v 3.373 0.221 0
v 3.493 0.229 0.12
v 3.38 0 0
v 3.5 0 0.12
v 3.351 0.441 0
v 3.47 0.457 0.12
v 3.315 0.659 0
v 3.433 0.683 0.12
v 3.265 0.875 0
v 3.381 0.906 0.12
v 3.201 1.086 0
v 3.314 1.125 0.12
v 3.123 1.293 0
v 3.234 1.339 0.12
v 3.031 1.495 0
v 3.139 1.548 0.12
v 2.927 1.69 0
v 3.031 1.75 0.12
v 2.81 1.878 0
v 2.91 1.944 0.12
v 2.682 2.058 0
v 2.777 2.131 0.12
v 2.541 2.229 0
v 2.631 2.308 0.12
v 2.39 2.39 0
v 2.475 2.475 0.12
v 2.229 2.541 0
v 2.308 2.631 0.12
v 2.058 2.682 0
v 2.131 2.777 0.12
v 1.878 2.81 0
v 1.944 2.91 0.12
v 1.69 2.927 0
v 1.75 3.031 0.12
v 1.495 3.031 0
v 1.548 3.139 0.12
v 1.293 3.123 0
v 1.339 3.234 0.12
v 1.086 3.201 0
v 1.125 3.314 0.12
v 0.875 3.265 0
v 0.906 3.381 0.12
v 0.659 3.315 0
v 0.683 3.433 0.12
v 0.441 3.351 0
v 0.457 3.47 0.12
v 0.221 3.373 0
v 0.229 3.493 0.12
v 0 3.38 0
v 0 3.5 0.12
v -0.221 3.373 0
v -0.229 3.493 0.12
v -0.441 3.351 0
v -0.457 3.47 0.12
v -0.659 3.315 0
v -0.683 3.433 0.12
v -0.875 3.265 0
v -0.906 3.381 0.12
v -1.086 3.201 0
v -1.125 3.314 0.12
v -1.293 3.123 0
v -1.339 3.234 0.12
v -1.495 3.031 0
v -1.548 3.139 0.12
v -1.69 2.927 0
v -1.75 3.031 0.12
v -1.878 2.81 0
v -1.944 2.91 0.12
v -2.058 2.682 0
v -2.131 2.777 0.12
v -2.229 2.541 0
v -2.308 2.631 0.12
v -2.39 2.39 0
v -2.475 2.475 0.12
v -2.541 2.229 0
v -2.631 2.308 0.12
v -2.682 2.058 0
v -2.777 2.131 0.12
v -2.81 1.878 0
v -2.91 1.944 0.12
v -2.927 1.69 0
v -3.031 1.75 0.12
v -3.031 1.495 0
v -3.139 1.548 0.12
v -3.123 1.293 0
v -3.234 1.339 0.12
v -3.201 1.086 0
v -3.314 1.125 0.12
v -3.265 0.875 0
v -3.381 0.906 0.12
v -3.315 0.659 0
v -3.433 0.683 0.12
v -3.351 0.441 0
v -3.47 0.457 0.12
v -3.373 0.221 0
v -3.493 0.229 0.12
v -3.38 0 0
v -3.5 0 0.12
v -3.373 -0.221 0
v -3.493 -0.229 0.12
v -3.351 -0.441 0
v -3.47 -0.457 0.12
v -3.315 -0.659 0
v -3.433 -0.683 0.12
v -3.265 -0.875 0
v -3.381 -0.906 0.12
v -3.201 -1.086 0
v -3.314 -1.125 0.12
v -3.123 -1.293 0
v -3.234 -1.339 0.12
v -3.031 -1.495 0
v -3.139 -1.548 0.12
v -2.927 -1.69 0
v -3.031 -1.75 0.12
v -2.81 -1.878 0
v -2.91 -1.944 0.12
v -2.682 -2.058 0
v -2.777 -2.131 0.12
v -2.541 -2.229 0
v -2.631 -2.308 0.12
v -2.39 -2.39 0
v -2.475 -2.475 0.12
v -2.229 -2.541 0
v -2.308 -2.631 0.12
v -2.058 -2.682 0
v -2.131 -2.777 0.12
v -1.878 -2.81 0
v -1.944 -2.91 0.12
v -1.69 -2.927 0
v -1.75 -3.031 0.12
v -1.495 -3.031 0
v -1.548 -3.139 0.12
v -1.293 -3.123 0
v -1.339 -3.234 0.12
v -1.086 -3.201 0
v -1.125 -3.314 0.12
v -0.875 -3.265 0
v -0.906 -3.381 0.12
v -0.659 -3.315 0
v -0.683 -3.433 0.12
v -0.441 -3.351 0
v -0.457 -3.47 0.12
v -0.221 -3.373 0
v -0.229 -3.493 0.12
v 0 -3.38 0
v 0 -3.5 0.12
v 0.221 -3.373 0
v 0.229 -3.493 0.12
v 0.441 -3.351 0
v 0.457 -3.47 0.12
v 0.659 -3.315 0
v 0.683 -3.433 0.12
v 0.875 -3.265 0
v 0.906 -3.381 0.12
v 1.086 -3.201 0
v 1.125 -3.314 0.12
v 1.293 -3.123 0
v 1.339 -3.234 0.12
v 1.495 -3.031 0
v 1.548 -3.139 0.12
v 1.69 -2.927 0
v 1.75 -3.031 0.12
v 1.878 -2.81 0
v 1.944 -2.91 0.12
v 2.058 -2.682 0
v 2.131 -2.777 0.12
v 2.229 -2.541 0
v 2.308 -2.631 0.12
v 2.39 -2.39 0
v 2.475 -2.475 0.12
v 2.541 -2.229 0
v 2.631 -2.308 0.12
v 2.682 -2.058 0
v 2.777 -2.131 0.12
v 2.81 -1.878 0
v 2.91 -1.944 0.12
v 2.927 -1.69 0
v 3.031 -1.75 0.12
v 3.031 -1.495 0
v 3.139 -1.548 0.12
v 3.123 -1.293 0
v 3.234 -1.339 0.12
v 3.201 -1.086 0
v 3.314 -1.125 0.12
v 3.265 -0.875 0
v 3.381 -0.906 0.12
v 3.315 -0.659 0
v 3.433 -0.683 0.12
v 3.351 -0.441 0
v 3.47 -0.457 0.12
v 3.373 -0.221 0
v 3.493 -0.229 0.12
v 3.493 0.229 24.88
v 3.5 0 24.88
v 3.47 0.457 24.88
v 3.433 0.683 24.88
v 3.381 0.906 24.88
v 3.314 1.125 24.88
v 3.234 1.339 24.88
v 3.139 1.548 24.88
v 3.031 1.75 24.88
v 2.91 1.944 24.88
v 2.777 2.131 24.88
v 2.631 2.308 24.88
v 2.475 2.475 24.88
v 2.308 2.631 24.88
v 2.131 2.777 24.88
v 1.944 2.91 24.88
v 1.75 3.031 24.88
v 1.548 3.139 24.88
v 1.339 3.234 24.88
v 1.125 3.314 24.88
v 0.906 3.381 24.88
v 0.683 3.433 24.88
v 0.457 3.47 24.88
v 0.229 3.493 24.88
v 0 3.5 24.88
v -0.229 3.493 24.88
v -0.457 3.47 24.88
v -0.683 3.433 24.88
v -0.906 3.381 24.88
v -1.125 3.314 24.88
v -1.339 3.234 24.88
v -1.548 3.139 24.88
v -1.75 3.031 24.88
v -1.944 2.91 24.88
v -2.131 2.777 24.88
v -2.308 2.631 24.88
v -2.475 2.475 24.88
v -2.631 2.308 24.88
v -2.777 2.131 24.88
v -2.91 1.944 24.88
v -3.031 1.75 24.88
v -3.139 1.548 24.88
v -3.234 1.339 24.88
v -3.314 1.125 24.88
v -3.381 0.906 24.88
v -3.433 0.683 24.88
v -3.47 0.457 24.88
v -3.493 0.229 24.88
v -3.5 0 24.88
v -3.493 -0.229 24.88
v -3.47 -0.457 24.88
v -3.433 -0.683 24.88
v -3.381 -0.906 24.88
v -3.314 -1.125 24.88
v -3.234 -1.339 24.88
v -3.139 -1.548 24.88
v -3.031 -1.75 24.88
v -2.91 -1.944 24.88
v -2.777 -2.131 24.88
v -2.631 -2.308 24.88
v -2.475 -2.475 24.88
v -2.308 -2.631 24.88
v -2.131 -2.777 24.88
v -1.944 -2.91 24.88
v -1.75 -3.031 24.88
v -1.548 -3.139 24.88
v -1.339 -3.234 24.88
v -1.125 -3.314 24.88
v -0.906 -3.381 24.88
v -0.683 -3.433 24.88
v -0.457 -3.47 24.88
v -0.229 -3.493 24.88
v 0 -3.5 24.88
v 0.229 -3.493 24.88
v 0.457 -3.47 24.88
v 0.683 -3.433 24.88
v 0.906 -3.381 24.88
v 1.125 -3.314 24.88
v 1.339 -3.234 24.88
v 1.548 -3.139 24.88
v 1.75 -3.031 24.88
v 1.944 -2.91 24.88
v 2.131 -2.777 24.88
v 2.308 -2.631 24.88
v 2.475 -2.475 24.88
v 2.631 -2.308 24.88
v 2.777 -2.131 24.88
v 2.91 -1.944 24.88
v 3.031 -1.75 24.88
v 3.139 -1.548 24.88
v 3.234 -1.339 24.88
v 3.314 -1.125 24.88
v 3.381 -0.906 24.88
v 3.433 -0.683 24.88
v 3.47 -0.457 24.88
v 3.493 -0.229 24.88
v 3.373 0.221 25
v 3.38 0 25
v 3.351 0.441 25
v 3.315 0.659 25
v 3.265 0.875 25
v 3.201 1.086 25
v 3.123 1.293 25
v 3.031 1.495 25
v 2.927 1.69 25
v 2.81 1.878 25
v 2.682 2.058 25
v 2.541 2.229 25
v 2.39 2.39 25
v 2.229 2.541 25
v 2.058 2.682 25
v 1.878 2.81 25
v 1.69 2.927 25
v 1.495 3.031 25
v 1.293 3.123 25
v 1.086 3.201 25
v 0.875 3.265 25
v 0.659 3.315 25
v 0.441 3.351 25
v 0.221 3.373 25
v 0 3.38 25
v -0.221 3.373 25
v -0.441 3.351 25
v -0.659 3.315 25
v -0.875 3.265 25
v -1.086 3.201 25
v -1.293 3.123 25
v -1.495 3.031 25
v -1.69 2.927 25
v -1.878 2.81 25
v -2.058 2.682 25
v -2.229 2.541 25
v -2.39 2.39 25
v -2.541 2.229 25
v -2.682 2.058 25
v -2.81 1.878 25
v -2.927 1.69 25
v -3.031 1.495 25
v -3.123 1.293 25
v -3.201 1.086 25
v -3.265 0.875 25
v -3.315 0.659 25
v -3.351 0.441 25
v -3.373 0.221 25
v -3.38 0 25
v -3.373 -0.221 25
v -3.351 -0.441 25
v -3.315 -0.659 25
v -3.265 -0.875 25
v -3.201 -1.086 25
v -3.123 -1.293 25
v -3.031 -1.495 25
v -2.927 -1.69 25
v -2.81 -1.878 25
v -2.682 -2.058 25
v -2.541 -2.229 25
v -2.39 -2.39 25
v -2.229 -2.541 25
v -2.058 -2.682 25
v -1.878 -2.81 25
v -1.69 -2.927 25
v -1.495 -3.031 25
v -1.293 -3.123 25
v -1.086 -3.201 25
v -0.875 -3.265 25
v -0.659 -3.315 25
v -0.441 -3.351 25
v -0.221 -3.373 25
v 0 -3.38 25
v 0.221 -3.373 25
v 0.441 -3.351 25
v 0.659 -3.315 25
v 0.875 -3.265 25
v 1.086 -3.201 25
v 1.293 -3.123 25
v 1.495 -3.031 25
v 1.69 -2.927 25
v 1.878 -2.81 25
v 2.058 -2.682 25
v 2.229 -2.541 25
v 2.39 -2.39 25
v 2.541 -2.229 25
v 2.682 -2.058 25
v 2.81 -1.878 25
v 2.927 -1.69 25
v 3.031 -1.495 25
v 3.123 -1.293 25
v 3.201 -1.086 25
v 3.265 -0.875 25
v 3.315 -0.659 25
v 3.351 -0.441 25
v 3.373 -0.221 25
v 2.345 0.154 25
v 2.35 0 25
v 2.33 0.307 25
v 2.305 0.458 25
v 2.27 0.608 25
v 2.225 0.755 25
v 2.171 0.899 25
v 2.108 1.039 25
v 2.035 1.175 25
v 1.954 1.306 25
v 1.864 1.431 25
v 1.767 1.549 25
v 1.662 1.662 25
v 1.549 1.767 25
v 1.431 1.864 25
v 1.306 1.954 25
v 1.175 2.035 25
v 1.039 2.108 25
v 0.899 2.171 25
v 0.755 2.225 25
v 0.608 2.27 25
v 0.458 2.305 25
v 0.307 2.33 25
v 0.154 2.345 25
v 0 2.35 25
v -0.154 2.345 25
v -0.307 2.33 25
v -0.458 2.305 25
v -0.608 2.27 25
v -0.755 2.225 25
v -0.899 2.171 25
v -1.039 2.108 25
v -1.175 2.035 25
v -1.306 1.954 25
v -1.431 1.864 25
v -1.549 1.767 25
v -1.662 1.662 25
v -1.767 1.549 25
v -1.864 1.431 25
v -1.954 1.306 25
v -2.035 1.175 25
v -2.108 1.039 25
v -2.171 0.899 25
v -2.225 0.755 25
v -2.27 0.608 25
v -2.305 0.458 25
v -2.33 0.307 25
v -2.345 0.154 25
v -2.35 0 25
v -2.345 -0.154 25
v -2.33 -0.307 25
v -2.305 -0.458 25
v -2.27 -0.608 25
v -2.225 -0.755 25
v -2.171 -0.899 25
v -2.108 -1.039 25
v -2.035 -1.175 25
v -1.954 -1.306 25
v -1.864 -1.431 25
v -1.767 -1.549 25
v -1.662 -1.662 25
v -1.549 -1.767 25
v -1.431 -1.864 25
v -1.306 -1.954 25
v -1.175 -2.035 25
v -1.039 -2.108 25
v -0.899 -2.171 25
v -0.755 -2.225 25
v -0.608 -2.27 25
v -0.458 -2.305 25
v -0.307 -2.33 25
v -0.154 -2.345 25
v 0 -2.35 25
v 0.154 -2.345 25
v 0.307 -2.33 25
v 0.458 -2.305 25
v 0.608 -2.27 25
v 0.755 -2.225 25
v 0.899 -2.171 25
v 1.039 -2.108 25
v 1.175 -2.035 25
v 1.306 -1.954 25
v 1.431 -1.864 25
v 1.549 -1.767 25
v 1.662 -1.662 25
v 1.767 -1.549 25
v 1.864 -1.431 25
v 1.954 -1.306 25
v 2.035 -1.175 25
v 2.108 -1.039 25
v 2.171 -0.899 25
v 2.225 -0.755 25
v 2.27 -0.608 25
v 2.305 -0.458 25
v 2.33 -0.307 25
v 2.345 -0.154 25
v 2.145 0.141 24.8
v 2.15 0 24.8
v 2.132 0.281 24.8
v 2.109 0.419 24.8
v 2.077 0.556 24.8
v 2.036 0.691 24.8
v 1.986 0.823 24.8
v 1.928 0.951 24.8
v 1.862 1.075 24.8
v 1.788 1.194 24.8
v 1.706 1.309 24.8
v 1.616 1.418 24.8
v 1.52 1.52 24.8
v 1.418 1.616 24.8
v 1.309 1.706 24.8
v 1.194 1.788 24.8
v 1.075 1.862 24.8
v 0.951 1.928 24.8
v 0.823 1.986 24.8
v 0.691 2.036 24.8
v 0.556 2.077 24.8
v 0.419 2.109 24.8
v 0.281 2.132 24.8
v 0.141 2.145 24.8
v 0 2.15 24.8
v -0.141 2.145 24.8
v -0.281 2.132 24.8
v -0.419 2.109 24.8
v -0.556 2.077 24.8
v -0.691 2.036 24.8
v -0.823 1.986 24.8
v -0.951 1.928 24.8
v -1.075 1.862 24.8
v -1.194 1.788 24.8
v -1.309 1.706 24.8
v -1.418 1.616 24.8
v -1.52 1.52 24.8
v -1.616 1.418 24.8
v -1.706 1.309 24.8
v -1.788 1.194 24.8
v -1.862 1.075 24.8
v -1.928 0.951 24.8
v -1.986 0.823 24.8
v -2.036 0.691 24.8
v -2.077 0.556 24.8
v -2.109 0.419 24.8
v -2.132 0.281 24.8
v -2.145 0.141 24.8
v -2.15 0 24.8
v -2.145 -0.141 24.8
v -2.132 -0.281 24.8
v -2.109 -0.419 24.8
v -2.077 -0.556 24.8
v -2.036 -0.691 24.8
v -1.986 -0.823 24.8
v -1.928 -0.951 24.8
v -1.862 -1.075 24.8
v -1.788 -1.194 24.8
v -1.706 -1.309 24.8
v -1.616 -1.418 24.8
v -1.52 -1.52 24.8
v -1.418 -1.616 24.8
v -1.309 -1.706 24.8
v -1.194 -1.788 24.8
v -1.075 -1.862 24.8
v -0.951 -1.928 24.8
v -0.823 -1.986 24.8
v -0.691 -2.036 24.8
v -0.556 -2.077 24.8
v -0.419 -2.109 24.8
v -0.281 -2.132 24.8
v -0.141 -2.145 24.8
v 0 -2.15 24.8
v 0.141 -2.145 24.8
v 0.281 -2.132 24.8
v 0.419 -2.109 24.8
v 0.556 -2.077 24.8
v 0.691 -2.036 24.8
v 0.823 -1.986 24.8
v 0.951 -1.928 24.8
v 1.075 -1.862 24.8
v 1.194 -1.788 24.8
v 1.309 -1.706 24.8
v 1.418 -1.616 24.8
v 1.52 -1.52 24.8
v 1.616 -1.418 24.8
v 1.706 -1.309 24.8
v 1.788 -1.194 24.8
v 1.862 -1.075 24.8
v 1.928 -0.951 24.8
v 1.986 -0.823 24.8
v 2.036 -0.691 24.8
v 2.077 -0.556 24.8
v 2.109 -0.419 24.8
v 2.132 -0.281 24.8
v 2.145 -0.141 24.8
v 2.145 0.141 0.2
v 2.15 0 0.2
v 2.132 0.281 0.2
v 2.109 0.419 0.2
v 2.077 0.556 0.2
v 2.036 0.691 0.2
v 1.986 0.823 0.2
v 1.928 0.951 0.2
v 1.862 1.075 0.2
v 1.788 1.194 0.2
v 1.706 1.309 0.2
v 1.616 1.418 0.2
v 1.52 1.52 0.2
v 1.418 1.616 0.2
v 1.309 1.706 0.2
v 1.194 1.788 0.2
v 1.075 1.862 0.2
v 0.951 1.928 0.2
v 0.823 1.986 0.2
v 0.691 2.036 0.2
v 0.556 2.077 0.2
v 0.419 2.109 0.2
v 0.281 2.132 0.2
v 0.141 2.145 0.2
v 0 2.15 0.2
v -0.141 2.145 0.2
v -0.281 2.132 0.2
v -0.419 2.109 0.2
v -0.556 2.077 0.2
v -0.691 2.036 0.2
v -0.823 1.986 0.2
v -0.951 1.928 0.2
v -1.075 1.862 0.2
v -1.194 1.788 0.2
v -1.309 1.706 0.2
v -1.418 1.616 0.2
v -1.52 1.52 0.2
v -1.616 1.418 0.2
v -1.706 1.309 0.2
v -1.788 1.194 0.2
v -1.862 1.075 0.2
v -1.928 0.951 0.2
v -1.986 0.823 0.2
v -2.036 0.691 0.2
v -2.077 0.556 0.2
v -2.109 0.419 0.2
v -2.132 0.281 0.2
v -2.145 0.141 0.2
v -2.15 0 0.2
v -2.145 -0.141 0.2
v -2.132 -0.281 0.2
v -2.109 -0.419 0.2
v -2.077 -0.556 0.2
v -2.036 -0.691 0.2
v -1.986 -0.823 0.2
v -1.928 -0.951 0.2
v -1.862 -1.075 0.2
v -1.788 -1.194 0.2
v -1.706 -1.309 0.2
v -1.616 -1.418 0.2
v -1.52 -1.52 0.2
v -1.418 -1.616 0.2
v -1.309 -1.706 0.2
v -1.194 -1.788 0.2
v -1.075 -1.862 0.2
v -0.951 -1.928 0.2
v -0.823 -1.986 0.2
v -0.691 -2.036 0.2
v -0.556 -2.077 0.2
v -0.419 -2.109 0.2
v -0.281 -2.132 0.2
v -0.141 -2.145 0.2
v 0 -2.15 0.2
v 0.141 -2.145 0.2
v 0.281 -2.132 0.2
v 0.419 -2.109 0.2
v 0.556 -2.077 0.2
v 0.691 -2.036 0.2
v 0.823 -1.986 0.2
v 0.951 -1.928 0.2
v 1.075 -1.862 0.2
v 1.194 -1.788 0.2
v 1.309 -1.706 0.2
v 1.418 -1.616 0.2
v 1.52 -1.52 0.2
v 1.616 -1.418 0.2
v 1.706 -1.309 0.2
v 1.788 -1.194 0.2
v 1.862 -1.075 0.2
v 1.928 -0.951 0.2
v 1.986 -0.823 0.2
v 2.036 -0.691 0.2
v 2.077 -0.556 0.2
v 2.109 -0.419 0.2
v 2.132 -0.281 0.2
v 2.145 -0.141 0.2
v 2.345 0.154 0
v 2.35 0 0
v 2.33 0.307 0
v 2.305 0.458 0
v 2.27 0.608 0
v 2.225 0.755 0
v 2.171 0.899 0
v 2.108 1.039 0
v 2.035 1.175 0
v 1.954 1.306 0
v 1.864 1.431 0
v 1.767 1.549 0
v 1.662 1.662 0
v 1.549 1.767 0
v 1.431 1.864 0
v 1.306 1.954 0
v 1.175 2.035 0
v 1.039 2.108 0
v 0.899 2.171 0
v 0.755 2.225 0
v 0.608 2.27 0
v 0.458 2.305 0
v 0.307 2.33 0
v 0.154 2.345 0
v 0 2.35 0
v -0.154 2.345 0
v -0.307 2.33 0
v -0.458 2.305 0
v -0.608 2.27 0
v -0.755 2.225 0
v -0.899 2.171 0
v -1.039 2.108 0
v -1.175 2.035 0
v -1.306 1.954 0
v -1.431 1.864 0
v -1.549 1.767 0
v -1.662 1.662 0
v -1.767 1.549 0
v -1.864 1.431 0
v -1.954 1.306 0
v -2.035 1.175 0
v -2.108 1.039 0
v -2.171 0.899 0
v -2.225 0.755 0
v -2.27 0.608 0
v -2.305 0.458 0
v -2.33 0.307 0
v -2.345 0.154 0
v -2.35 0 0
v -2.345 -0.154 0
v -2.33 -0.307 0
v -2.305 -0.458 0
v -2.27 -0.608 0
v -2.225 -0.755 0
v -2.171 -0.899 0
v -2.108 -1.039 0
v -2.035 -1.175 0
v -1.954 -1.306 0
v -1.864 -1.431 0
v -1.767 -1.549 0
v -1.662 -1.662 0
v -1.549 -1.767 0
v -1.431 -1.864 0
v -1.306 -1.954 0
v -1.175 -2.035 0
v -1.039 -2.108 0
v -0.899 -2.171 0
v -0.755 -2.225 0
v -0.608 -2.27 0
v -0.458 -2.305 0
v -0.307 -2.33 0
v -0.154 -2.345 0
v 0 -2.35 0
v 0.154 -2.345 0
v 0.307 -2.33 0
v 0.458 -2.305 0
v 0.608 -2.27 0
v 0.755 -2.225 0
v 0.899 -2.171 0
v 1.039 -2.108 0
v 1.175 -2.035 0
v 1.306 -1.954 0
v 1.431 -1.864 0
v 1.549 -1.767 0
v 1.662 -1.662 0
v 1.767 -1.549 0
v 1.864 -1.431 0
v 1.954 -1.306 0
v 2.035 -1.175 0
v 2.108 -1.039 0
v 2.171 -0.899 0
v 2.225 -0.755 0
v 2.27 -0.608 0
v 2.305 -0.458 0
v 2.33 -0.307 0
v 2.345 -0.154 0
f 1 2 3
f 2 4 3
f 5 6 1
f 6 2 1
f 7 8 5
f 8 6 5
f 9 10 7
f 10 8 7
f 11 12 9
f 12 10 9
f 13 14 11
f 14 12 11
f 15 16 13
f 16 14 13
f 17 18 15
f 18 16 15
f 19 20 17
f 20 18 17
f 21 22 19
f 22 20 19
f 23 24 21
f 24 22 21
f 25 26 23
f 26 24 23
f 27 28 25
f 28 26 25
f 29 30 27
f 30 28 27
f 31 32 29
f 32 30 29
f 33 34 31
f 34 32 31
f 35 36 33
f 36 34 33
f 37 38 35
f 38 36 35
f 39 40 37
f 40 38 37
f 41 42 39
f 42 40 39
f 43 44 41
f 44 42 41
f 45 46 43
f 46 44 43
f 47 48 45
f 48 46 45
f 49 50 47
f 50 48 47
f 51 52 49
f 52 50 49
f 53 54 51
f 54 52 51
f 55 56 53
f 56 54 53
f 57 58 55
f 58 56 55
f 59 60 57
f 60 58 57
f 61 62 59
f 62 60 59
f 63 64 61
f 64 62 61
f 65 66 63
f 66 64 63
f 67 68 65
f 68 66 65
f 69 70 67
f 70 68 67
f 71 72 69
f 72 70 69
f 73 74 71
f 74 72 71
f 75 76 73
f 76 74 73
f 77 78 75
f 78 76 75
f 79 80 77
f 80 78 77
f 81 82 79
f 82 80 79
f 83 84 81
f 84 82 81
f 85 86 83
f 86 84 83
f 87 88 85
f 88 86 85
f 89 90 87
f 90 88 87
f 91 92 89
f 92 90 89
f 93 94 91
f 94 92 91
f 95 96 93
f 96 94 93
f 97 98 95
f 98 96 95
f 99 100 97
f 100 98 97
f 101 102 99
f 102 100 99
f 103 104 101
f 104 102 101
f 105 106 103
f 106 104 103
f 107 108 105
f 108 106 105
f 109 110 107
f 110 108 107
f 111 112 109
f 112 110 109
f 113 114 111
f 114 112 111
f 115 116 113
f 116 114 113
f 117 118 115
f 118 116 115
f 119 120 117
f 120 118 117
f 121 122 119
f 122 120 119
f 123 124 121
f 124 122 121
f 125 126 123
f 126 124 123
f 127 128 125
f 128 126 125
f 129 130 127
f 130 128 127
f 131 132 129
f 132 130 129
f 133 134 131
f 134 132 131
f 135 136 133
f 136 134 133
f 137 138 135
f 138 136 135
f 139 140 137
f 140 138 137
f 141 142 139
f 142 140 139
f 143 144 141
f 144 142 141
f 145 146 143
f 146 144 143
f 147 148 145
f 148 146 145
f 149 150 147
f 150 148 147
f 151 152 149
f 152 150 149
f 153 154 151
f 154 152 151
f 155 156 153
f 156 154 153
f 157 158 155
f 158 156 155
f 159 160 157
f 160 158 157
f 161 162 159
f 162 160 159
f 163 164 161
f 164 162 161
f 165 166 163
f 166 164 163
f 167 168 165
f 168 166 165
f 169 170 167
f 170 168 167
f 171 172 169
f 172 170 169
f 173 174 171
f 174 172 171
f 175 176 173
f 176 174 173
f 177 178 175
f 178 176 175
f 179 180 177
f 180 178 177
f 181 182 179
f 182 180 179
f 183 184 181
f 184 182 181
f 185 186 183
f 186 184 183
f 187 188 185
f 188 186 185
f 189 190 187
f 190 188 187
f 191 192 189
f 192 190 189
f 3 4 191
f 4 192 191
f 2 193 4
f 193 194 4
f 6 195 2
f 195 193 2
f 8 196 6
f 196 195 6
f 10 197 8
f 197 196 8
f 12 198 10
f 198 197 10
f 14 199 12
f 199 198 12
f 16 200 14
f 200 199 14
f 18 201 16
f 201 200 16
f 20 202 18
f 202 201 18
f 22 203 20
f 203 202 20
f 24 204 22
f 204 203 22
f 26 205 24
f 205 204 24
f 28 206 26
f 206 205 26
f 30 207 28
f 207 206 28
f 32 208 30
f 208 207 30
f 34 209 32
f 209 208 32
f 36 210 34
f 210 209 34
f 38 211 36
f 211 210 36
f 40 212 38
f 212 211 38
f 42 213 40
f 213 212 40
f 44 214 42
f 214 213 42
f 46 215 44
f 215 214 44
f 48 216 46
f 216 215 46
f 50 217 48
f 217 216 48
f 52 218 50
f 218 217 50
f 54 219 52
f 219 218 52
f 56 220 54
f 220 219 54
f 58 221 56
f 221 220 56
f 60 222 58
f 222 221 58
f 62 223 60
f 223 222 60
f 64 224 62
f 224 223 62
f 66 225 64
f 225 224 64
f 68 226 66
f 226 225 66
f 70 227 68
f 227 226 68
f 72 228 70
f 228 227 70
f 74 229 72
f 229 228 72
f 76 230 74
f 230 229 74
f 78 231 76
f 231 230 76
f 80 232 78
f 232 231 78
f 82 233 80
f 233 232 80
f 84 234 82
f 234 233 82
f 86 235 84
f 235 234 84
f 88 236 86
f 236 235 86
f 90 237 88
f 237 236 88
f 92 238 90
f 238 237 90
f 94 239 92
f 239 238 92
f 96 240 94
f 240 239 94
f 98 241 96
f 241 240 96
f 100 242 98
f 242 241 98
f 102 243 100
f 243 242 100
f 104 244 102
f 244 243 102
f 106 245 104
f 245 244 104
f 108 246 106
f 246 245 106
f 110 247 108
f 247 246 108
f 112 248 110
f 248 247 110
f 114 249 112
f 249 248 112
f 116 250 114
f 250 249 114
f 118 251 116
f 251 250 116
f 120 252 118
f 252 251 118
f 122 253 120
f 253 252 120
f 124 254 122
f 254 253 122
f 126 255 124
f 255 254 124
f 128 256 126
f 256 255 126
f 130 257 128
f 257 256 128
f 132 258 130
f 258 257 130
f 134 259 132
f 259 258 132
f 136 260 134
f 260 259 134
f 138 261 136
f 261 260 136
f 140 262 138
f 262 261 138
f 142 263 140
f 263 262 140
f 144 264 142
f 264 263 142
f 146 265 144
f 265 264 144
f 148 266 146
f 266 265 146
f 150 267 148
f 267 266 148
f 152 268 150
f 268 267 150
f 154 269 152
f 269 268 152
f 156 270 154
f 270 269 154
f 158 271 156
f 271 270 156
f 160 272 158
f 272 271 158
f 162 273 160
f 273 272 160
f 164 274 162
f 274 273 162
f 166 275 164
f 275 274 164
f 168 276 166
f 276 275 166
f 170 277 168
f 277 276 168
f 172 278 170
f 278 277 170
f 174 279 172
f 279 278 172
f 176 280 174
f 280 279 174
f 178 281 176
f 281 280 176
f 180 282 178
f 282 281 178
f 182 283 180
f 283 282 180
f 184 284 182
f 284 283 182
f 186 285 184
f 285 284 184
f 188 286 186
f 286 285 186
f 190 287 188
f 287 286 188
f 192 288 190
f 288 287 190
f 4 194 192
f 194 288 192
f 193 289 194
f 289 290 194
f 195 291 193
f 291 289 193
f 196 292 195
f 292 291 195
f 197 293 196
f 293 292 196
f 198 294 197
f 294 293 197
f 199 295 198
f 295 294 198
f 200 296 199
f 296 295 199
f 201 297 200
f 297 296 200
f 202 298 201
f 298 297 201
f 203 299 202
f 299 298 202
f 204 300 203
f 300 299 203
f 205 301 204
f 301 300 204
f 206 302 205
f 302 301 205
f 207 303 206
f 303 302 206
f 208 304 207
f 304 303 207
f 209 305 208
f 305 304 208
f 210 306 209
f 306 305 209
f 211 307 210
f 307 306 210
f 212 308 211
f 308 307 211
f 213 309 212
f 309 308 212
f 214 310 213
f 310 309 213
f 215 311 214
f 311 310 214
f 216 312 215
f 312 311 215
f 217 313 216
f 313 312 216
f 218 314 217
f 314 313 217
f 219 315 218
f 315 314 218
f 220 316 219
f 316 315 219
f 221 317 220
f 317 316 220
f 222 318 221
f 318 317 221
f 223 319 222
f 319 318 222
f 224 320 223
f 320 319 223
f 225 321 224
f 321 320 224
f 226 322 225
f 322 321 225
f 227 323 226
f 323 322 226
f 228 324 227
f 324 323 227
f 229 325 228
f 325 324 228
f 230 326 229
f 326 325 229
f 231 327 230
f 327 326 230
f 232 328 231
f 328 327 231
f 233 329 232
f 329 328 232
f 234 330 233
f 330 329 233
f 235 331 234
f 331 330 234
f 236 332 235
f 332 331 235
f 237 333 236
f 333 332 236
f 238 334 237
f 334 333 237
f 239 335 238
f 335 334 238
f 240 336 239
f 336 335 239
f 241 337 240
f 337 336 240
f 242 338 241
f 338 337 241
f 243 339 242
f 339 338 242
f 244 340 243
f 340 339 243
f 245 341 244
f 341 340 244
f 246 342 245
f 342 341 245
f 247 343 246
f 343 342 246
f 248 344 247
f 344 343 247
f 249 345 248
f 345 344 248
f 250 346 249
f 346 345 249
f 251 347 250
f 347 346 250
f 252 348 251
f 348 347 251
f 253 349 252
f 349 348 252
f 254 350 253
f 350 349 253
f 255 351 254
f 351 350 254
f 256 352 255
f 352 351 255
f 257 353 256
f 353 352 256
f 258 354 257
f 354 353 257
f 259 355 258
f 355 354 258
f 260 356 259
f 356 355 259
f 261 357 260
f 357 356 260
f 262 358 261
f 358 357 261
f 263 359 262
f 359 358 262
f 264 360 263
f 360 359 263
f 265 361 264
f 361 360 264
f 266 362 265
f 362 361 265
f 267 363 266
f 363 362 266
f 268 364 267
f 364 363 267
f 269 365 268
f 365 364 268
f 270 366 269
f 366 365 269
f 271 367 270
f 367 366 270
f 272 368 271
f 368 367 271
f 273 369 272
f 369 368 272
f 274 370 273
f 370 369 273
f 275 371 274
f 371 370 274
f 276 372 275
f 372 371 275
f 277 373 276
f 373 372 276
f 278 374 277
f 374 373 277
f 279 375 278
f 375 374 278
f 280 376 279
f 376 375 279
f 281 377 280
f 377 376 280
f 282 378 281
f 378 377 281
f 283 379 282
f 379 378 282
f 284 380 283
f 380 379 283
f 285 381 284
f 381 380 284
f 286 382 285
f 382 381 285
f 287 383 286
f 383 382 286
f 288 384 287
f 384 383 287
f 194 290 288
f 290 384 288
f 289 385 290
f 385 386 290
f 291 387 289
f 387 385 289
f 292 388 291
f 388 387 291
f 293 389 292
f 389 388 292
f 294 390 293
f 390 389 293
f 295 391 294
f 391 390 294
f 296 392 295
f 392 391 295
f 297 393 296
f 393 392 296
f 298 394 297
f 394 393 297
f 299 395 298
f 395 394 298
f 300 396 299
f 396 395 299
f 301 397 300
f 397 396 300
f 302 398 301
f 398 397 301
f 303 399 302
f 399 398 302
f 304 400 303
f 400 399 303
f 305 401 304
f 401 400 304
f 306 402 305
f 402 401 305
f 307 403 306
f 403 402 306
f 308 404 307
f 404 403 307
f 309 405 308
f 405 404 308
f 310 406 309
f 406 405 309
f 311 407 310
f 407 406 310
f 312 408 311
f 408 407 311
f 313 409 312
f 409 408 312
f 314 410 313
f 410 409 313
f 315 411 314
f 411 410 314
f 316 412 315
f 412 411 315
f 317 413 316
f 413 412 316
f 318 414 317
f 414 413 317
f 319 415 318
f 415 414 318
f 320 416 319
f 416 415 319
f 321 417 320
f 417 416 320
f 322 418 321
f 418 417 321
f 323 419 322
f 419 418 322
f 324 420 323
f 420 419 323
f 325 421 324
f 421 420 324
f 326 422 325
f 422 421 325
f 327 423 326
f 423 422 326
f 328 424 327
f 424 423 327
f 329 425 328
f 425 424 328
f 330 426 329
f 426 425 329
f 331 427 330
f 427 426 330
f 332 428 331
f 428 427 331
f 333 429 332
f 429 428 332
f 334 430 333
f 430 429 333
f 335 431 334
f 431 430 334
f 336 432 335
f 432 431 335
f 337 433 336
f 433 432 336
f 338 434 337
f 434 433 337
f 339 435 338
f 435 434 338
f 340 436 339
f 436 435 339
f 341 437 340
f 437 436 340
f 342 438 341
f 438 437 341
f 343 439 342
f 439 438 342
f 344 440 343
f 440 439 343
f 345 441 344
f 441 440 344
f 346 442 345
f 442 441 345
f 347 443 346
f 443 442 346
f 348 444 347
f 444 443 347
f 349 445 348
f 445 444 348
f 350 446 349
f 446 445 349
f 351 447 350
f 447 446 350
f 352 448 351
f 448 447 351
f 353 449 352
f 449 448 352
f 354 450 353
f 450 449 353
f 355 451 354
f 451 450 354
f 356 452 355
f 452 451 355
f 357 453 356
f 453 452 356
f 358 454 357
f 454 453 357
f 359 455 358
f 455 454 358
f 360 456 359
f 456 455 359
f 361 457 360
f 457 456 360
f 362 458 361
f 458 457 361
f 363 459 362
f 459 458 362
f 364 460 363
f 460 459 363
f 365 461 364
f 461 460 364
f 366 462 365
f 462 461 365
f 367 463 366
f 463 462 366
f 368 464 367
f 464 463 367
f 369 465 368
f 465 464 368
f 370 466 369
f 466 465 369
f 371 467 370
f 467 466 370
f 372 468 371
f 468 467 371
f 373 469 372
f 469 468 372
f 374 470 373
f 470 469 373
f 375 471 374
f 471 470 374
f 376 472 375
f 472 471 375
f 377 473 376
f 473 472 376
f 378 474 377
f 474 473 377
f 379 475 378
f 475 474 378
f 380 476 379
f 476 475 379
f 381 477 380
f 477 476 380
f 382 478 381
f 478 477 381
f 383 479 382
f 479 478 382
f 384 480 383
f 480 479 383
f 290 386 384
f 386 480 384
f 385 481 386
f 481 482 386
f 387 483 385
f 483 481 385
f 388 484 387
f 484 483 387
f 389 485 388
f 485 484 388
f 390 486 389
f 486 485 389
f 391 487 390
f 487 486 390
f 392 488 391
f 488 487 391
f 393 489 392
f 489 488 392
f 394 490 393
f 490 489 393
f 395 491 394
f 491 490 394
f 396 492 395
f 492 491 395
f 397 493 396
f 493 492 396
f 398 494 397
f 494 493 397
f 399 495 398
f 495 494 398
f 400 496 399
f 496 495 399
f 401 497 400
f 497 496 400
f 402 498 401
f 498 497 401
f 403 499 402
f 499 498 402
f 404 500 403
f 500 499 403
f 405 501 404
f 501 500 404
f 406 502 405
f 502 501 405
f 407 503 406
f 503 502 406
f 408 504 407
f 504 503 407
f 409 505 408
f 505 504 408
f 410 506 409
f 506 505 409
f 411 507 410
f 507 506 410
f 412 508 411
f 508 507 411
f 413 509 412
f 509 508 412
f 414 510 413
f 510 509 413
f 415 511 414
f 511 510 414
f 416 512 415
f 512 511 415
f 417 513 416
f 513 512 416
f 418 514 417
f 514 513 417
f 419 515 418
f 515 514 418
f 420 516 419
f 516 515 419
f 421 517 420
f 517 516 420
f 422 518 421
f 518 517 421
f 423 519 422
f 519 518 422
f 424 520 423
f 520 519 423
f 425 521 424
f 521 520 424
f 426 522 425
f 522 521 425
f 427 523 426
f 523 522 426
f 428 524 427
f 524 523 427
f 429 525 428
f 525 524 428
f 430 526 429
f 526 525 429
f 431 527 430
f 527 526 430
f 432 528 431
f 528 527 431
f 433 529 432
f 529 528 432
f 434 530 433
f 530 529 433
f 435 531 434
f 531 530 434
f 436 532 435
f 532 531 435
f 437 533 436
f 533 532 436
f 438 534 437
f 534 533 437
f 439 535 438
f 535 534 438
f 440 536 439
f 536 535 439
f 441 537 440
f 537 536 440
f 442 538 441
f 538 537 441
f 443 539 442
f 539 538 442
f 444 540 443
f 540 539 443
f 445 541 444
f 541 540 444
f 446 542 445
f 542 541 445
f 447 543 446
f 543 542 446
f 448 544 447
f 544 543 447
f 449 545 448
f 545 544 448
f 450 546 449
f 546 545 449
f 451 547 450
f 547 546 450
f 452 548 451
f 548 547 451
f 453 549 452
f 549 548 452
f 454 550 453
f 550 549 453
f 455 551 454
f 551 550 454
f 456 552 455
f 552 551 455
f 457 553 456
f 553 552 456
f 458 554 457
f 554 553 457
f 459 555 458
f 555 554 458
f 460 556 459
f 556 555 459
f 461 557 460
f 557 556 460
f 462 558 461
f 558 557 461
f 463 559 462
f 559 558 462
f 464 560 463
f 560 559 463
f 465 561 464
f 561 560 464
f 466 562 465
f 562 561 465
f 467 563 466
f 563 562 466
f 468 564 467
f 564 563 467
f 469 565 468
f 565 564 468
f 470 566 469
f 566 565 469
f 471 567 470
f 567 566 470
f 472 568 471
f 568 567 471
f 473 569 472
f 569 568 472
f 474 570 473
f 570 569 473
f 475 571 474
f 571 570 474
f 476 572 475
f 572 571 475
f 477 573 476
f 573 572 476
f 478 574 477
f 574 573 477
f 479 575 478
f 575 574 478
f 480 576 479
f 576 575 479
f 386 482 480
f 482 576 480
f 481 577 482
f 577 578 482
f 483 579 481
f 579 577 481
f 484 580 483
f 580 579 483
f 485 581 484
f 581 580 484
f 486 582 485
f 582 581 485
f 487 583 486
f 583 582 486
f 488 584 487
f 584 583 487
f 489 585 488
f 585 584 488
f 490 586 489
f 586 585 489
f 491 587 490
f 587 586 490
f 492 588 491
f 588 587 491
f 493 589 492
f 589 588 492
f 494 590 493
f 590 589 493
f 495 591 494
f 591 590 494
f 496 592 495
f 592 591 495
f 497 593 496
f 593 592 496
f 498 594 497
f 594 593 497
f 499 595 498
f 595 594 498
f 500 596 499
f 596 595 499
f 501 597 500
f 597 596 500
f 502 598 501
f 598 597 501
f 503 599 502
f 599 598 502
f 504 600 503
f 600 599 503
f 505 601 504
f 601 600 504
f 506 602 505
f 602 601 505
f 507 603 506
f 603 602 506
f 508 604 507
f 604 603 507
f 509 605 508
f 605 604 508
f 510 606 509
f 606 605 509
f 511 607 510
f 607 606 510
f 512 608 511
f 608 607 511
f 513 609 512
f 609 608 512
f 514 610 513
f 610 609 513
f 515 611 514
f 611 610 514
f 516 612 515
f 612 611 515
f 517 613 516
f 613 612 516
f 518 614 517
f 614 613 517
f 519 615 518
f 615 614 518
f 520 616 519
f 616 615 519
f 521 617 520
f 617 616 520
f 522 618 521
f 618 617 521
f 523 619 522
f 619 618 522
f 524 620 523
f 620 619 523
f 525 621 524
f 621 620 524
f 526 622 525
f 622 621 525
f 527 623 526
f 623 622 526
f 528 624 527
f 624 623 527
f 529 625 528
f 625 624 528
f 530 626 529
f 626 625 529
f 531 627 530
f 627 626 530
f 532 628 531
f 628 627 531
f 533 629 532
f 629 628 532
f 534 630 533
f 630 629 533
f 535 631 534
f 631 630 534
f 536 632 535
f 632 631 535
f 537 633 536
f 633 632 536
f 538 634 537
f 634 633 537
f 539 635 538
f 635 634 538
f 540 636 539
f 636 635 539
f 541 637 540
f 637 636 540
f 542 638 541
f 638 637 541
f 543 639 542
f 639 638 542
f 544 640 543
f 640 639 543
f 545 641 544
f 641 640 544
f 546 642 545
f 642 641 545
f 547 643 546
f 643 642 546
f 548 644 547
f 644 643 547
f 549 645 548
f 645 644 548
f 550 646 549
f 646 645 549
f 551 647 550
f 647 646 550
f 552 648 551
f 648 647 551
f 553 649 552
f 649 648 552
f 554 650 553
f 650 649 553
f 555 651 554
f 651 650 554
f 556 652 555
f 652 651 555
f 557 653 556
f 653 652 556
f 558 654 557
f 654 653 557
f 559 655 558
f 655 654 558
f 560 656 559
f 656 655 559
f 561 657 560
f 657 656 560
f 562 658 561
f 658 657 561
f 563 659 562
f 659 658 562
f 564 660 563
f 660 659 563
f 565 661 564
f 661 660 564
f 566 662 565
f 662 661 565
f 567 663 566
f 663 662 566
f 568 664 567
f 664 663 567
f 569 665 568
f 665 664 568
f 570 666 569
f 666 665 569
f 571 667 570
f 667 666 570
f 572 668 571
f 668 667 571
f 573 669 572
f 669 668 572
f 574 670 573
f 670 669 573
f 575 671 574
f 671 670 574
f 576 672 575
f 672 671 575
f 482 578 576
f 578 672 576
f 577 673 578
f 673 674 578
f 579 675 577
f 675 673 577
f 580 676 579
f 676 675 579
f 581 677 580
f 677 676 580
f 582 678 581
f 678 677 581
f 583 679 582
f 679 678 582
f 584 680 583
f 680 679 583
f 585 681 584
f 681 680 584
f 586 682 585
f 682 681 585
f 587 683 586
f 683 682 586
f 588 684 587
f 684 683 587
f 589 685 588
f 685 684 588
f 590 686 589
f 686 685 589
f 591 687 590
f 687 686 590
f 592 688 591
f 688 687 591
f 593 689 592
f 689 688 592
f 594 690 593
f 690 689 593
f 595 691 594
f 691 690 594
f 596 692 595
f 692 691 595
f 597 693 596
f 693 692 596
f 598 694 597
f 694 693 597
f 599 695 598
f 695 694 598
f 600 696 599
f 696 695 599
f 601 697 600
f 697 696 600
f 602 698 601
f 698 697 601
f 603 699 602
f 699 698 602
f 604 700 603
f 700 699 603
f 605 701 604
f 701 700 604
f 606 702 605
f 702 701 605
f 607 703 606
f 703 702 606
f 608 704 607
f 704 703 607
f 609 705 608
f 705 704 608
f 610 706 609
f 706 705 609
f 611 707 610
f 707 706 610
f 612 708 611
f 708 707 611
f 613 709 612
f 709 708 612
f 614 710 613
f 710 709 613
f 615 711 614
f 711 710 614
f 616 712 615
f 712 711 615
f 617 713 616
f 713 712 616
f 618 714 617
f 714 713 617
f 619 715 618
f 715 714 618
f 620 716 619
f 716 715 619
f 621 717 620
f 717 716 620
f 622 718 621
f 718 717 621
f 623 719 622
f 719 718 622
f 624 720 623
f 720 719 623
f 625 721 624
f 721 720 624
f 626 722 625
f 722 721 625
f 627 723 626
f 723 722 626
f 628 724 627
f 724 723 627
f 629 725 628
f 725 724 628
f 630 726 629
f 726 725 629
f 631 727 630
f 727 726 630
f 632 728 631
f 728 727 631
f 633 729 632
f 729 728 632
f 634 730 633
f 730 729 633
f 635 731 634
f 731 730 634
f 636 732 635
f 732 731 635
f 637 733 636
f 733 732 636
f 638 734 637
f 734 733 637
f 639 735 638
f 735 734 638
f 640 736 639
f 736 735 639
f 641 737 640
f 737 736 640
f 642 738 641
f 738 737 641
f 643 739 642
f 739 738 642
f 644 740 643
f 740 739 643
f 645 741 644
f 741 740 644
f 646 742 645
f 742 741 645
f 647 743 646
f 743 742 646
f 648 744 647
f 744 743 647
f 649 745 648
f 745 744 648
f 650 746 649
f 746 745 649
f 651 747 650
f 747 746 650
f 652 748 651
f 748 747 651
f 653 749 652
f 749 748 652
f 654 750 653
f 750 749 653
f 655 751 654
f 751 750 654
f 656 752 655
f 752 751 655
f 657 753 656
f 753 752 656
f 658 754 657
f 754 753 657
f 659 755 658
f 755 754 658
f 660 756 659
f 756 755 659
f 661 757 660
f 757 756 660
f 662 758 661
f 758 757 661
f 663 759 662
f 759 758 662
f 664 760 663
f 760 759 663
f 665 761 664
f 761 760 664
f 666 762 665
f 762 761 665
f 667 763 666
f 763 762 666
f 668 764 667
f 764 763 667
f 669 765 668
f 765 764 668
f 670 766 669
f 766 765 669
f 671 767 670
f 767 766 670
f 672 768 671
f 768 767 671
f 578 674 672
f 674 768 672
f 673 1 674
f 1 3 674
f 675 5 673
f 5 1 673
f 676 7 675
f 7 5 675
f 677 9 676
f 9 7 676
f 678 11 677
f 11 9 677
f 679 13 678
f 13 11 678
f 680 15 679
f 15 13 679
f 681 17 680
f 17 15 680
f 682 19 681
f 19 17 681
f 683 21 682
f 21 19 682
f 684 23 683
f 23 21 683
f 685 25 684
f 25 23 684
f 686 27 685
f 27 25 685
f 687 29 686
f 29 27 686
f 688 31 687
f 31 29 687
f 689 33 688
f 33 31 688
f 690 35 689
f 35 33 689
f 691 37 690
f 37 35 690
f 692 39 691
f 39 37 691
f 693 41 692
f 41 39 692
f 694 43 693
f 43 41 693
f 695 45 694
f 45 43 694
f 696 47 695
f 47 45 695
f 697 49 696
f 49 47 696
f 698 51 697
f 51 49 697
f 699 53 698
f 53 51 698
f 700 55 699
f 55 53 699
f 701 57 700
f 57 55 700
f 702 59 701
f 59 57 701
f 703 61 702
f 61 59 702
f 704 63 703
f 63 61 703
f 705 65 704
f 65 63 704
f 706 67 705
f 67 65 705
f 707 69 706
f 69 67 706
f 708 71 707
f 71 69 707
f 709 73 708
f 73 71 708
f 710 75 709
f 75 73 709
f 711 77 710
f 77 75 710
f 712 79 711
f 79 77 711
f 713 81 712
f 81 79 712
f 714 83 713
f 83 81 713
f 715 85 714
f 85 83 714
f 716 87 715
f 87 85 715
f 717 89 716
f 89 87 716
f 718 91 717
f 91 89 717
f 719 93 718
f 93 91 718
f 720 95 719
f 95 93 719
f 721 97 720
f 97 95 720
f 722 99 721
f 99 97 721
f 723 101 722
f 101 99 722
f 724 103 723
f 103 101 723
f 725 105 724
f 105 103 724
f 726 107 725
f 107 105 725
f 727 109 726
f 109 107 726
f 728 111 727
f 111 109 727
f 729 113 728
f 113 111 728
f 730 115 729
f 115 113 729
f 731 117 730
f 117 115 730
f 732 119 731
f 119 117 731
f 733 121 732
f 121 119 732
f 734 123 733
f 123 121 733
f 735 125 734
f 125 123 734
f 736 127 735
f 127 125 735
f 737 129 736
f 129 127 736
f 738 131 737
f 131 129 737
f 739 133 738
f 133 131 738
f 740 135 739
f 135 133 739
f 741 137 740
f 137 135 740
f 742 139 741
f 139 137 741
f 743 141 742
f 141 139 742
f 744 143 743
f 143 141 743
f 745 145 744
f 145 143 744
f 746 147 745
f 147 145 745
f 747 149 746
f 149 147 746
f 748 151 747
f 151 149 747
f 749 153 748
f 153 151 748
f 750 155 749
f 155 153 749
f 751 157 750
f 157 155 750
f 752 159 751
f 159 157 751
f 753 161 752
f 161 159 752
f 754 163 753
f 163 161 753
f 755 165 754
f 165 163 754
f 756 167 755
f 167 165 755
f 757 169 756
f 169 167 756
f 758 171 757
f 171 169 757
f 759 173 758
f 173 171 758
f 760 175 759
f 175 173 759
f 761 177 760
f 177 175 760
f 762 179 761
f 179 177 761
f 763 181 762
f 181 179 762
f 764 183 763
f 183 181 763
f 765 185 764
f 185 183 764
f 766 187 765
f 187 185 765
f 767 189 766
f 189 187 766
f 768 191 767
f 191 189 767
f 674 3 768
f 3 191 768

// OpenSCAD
// OOMP generic catalogue model; units: mm.
// Stud length is additional to body depth. Tapping depths are model assumptions.
variant = "full"; // [full, display]
family = "spacer";
connection_type = "plain";
depth_mm = 25;
stud_length_mm = 0;
tapped_depth_mm = 0;
bore_mm = 4.3;
outer_diameter_mm = 7;
across_flats_mm = 6;
thread_nominal_diameter_mm = 3;
thread_pitch_mm = 0.5;
edge_chamfer_mm = 0.12;
mouth_chamfer_mm = 0.2;
angular_segments = 96;
samples_per_pitch = 16;

// Boundary travels up the outside, then down any tapped/plain bore.
// Equal-height rings at shoulders form the annular shoulder faces.
n = angular_segments;
threaded = family == "standoff";
has_stud = connection_type == "stud_to_tapped" || connection_type == "stud_to_stud";
two_studs = connection_type == "stud_to_stud";
through = !threaded || connection_type == "tapped_to_tapped";
pitch = thread_pitch_mm;
diameter = threaded ? thread_nominal_diameter_mm : bore_mm;
minor = diameter - 5*sqrt(3)*pitch/8;
transition = mouth_chamfer_mm + (threaded ? 5*sqrt(3)*pitch/16 : 0);
tip_chamfer = mouth_chamfer_mm + 17*sqrt(3)*pitch/48;
function sorted(v) = len(v)<=1 ? v : let(p=v[0])
    concat(sorted([for(x=v) if(x<p-1e-8) x]), [p], sorted([for(x=v) if(x>p+1e-8) x]));
function reverse(v) = [for(i=[len(v)-1:-1:0]) v[i]];
function theta(i) = i*360/n;
function fract(x) = x-floor(x);
function phase_distance(i,z) = abs(fract(z/pitch-theta(i)/360+0.5)-0.5);
function thread_r(i,z) = minor/2 + min(5*sqrt(3)*pitch/16,
    max(0,(phase_distance(i,z)-0.125)*pitch*sqrt(3)));
function stud_r(i,z,tip) = min(diameter/2 - (variant=="full" ?
    min(17*sqrt(3)*pitch/48,max(0,(phase_distance(i,z)-0.0625)*pitch*sqrt(3))) : 0),
    diameter/2-tip_chamfer+abs(z-tip));
function body_r(i,z) = (threaded ? across_flats_mm/2/cos(theta(i)%60-30) : outer_diameter_mm/2)
    - max(0,edge_chamfer_mm-min(z,depth_mm-z));
function bore_r(i,z) = max(threaded ? (variant=="full" ? thread_r(i,z) : minor/2) : diameter/2,
    diameter/2+mouth_chamfer_mm-(through ? min(z,depth_mm-z) : depth_mm-z));
function stud_z(a,b,tip) = let(count=variant=="full" ? ceil(stud_length_mm/pitch*samples_per_pitch) : 1)
    sorted(concat([for(i=[0:count]) a+(b-a)*i/count], [tip==a ? tip+tip_chamfer : tip-tip_chamfer]));
body_z = sorted([0,edge_chamfer_mm,depth_mm-edge_chamfer_mm,depth_mm]);
low = through ? 0 : depth_mm-tapped_depth_mm;
count = threaded && variant=="full" ? ceil((depth_mm-low)/pitch*samples_per_pitch) : 1;
bore_z = two_studs ? [] : reverse(sorted(concat(
    [for(i=[0:count]) low+(depth_mm-low)*i/count],
    [depth_mm-mouth_chamfer_mm,depth_mm-transition],
    through ? [mouth_chamfer_mm,transition] : [])));
// Ring descriptors: [height, kind, tip]. Kind: 0 body, 1 stud, 2 bore.
rings = concat(
    has_stud ? [for(z=stud_z(-stud_length_mm,0,-stud_length_mm)) [z,1,-stud_length_mm]] : [],
    [for(z=body_z) [z,0,0]],
    two_studs ? [for(z=stud_z(depth_mm,depth_mm+stud_length_mm,depth_mm+stud_length_mm)) [z,1,depth_mm+stud_length_mm]] : [],
    [for(z=bore_z) [z,2,0]]);
function radius(i,ring) = ring[1]==0 ? body_r(i,ring[0]) :
    ring[1]==1 ? stud_r(i,ring[0],ring[2]) : bore_r(i,ring[0]);
points = concat([for(ring=rings) for(i=[0:n-1])
    [radius(i,ring)*cos(theta(i)),radius(i,ring)*sin(theta(i)),ring[0]]],
    through ? [] : [[0,0,rings[0][0]],[0,0,rings[len(rings)-1][0]]]);
center = len(rings)*n;
last = (len(rings)-1)*n;
// OpenSCAD winding is opposite to STL winding.
faces = concat(
    [for(j=[0:len(rings)-(through ? 1 : 2)]) for(i=[0:n-1]) each
        let(a=j*n+i,b=j*n+(i+1)%n,c=((j+1)%len(rings))*n+(i+1)%n,d=((j+1)%len(rings))*n+i)
        [[a,c,b],[a,d,c]]],
    through ? [] : [for(i=[0:n-1]) each let(k=(i+1)%n)
        [[center,i,k],[center+1,last+k,last+i]]]);
assert(family=="spacer" || family=="standoff");
assert(!threaded || connection_type=="tapped_to_tapped" || has_stud);
assert(depth_mm>0 && diameter>0 && pitch>0);
assert(variant=="full" || variant=="display");
assert(n>=24 && n%12==0 && samples_per_pitch>=8);
assert(mouth_chamfer_mm>0 && mouth_chamfer_mm<depth_mm/2);
assert(edge_chamfer_mm>=0 && edge_chamfer_mm<depth_mm/2);
assert(diameter+4*max(mouth_chamfer_mm,edge_chamfer_mm) < (threaded ? across_flats_mm : outer_diameter_mm));
assert(!has_stud || stud_length_mm>2*mouth_chamfer_mm);
assert(!through || !threaded || 2*transition<depth_mm);
assert(connection_type!="stud_to_tapped" || (tapped_depth_mm>transition && tapped_depth_mm<depth_mm));
color([0.86,0.85,0.81]) polyhedron(points=points,faces=faces,convexity=20);
